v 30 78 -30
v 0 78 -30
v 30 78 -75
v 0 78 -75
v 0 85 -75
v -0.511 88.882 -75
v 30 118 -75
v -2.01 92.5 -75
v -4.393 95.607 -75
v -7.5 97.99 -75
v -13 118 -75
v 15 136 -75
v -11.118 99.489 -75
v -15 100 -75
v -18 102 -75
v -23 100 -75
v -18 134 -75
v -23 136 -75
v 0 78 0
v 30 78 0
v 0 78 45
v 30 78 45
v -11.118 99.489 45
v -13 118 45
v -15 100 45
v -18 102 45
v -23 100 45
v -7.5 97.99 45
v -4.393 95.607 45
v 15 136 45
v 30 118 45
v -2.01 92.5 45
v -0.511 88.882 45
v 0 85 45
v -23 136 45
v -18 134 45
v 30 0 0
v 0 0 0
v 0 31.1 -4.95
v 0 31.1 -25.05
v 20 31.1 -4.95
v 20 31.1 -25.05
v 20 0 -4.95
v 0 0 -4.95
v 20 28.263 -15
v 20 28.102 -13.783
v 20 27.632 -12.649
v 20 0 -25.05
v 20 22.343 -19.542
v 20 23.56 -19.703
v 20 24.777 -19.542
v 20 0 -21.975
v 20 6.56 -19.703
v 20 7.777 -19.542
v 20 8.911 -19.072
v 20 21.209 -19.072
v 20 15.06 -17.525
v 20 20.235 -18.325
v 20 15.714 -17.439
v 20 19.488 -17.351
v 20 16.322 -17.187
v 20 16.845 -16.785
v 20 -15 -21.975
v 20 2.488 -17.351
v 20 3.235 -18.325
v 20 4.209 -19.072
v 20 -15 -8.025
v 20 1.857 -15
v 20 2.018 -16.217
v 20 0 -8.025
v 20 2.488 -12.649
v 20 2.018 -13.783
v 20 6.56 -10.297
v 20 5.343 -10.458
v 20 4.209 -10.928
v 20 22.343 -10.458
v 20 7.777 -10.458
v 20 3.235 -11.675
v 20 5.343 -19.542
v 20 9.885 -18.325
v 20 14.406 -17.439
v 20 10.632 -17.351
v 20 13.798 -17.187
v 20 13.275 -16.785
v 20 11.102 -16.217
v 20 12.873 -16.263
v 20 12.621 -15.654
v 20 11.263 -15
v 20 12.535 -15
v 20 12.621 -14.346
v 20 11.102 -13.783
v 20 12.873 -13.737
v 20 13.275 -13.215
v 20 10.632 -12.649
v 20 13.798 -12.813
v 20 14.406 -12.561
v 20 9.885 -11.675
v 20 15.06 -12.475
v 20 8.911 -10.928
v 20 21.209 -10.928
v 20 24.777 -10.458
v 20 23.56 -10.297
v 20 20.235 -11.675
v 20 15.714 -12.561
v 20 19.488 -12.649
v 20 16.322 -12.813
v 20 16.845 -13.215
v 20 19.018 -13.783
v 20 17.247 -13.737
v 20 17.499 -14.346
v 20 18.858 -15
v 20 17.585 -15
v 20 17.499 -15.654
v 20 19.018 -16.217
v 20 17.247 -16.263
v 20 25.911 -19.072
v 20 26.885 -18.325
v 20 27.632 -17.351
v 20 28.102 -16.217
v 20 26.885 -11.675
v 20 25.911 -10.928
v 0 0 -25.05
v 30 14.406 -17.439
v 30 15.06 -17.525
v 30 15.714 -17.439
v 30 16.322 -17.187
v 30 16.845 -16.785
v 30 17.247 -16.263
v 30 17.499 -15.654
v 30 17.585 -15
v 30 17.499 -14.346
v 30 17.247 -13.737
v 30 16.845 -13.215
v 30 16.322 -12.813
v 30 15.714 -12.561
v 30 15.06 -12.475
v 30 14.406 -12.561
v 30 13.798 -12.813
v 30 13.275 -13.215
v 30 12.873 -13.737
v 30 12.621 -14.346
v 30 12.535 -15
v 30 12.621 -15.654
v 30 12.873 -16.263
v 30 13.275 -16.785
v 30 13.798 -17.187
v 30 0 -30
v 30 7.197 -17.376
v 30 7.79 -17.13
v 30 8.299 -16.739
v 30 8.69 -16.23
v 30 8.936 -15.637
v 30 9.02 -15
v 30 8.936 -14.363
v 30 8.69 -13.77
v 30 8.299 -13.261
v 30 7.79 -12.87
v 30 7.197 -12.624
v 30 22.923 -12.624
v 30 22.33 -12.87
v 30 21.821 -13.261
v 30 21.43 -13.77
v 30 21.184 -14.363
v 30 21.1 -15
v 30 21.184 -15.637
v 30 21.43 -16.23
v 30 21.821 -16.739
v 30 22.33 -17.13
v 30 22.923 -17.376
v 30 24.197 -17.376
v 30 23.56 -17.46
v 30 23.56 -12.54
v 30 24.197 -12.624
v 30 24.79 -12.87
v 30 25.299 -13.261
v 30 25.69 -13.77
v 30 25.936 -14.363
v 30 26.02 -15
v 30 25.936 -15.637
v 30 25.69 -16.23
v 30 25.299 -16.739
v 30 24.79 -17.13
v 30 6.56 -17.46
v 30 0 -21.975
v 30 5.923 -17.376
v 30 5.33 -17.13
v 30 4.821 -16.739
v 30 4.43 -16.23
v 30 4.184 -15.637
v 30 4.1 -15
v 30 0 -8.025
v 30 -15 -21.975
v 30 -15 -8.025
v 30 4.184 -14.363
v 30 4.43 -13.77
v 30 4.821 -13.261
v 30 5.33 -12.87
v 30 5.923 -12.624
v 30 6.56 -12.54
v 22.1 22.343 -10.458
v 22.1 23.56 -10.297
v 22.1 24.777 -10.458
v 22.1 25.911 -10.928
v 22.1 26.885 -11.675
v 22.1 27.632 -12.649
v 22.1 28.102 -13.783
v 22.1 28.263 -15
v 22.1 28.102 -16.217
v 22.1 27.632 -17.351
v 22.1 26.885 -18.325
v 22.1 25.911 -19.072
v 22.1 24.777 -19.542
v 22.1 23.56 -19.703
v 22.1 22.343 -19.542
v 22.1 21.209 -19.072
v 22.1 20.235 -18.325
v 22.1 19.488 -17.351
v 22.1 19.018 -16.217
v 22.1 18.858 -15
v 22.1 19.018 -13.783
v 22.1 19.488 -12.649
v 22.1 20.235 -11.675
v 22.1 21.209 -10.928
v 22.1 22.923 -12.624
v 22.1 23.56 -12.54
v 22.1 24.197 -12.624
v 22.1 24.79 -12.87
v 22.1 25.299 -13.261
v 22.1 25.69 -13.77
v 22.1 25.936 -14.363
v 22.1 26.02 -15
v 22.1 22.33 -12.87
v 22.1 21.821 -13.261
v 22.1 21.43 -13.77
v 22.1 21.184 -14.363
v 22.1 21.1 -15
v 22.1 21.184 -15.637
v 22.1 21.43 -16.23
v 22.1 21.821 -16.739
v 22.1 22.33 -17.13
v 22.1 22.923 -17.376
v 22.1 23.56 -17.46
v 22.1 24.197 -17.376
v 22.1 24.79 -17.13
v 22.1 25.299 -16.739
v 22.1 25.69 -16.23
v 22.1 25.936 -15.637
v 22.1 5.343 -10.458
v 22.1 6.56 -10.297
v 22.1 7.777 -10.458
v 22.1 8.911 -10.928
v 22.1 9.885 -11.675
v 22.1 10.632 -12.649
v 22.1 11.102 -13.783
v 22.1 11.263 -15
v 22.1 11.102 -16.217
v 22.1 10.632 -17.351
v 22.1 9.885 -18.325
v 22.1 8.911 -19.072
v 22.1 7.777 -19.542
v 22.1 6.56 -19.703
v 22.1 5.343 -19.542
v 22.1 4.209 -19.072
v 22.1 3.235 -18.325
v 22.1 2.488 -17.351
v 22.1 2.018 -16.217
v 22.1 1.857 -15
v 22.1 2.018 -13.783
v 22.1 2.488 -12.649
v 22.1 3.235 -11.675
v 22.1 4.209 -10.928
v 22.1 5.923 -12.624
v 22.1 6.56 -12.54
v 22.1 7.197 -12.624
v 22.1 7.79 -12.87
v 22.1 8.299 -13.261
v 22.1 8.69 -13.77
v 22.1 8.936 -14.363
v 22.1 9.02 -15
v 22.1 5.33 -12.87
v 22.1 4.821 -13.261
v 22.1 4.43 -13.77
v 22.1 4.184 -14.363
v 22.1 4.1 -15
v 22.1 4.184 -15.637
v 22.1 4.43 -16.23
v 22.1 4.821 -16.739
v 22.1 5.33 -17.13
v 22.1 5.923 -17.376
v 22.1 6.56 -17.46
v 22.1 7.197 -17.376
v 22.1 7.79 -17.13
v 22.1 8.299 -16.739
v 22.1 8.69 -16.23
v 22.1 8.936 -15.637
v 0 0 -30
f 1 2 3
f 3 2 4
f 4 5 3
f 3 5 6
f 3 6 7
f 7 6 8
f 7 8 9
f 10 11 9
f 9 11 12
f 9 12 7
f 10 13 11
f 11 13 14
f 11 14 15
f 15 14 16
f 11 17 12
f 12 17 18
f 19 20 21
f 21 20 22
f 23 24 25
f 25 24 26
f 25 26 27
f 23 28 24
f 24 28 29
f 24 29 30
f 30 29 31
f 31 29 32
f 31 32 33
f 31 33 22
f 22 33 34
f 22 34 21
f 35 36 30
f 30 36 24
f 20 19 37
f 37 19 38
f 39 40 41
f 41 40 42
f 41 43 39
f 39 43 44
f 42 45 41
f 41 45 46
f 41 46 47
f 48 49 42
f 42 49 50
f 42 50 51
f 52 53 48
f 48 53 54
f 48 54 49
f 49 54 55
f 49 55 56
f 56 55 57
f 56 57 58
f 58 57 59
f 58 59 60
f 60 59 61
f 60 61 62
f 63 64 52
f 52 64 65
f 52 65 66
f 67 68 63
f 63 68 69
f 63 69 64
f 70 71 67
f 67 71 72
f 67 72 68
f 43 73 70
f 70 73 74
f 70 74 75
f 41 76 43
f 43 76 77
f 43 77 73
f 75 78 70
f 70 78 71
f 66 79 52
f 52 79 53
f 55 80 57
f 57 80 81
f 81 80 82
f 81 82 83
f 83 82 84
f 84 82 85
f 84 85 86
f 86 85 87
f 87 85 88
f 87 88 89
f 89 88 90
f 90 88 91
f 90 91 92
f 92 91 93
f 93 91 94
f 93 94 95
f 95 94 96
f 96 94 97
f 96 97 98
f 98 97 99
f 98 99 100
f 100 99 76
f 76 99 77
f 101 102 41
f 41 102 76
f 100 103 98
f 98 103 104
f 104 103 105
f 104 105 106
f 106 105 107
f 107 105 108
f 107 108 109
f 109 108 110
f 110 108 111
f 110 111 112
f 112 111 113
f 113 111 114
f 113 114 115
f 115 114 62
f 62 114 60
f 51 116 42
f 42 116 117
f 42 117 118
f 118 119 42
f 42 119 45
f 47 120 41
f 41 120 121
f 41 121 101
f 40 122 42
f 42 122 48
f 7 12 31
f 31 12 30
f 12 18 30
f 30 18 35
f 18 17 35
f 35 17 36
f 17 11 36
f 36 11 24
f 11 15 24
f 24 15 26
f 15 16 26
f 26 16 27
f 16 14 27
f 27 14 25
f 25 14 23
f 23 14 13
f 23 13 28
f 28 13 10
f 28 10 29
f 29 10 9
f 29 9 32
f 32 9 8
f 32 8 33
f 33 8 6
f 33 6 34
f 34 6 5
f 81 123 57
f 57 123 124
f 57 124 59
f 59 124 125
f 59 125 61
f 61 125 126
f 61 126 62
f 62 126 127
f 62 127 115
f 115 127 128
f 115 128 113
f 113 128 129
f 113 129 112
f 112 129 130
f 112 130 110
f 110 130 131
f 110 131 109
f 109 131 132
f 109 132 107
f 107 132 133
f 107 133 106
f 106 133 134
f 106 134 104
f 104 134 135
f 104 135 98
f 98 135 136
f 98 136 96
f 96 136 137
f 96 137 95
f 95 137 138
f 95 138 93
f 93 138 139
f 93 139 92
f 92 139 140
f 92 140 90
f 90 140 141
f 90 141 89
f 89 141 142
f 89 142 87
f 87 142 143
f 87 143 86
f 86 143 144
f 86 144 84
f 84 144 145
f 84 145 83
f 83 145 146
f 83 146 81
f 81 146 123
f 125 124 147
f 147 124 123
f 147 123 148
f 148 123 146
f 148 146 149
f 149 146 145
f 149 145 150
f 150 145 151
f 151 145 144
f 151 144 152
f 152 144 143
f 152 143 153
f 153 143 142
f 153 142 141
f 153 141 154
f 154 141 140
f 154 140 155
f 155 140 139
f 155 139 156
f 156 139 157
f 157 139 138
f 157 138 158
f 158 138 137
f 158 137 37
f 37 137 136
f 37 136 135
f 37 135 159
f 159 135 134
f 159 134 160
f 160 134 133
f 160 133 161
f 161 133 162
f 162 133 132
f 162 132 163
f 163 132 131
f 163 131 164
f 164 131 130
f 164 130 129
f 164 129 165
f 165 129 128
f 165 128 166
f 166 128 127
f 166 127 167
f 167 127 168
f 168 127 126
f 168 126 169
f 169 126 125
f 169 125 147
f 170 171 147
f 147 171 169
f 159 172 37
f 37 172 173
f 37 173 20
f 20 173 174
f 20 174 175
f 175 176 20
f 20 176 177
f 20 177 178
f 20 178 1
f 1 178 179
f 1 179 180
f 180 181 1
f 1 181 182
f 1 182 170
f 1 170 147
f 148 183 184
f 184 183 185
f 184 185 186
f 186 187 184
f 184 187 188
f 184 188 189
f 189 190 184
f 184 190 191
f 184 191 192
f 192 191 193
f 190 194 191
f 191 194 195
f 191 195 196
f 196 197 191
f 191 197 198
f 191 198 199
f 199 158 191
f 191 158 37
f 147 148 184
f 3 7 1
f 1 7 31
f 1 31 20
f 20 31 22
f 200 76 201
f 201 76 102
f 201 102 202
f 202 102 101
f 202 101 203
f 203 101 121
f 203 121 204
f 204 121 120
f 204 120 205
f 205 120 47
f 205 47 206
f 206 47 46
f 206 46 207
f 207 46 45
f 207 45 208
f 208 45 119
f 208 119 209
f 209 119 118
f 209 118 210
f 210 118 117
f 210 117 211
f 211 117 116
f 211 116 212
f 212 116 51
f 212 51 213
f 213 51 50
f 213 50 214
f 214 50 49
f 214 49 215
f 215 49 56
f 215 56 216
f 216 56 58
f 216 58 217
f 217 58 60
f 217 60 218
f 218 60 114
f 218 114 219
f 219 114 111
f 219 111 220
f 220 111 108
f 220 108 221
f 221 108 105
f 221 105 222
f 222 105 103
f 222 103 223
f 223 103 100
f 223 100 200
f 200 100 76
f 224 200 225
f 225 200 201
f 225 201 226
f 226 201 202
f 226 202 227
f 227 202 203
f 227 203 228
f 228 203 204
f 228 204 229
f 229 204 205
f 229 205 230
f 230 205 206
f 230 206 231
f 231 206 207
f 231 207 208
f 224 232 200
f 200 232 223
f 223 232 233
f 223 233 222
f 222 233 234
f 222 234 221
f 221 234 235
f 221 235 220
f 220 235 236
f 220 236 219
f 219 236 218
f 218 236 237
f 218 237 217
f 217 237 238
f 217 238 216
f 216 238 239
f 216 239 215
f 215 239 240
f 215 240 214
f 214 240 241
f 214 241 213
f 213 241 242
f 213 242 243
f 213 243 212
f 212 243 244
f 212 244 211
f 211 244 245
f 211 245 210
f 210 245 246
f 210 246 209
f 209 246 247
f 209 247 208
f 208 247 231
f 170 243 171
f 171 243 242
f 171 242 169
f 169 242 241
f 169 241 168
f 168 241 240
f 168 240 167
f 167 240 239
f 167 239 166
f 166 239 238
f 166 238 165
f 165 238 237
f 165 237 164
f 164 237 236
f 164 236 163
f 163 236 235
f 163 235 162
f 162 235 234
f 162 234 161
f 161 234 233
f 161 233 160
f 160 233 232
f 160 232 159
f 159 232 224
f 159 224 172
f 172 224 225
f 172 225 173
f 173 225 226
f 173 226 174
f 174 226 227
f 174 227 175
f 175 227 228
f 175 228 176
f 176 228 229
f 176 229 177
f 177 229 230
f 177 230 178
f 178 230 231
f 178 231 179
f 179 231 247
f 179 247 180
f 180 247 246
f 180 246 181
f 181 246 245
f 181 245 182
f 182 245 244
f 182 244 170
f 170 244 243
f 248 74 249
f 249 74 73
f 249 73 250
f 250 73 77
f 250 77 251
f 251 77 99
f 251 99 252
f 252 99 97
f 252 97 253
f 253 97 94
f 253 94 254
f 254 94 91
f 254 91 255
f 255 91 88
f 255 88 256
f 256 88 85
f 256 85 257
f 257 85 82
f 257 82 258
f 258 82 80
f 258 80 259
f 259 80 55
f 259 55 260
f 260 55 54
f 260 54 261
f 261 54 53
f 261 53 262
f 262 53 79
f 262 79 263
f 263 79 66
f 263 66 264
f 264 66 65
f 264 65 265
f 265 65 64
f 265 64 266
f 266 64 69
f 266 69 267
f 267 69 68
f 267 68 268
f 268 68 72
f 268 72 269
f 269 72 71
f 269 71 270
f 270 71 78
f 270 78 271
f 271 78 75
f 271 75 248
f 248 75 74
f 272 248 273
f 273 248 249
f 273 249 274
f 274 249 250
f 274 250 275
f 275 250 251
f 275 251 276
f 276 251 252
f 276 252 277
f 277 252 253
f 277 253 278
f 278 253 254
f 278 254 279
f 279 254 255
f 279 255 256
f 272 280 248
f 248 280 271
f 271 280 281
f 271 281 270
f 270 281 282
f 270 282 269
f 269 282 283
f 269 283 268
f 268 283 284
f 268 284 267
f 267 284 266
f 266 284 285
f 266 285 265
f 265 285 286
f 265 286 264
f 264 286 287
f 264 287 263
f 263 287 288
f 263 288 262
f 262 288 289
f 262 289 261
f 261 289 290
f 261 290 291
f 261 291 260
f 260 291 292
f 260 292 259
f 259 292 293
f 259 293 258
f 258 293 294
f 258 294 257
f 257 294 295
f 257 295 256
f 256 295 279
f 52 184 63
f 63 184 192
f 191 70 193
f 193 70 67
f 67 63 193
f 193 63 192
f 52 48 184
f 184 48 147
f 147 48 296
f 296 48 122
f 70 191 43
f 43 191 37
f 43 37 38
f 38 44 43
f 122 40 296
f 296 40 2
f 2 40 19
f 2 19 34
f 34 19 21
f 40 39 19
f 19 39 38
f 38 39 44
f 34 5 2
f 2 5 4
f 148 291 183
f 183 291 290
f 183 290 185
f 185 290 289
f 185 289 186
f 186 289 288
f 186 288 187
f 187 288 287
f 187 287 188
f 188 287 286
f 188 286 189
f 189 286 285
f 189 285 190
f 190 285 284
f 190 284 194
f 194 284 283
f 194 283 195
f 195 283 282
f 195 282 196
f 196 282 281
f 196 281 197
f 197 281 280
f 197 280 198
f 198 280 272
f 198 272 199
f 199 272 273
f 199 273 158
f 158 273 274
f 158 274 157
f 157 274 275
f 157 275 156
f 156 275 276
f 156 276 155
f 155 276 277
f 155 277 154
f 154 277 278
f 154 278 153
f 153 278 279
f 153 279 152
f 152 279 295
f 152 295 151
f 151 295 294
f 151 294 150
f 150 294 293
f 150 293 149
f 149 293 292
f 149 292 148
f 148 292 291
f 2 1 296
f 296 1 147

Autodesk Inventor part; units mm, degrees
ref_plane "YZ Plane" through (0, 0, 0) normal (1, 0, 0) x (0, 1, 0)
ref_plane "XZ Plane" through (0, 0, 0) normal (0, 1, 0) x (-1, 0, 0)
sketch "Sketch1" plane through (0, 0, 0) normal (0, 0, 1) x (1, 0, 0)
  line L0 (0, 0) -> (25, 0)
  line L1 (25, 0) -> (25, 40)
  line L2 (25, 40) -> (0, 40)
  line L3 (0, 40) -> (0, 0)
  dimension "d1" = 25
  dimension "d2" = 40
  dimension "d3" = 25
extrude "Extrusion1" add sketch "Sketch1" against normal blind 30
sketch "Sketch2" plane through (25, 0, 0) normal (1, 0, 0) x (0, 0, -1)
  line L0 (0, 0) -> (30, 0) projected
  circle A0 centre (15, 6.56) radius 2.46
extrude "Extrusion2" cut sketch "Sketch2" against normal blind 30
sketch "Sketch3" plane through (0, 0, 0) normal (-1, 0, 0) x (0, 0, 1)
  line L0 (0, 0) -> (-30, 0) projected
  line L1 (-25.05, 0) -> (-4.95, 0)
  line L2 (-4.95, 0) -> (-4.95, 33.12)
  line L3 (-4.95, 33.12) -> (-25.05, 33.12)
  line L4 (-25.05, 33.12) -> (-25.05, 0)
  dimension "d11" = 20.1
extrude "Extrusion3" cut sketch "Sketch3" against normal blind 20
sketch "Sketch4" plane through (0, 0, 0) normal (0, -1, 0) x (1, 0, 0)
  line L0 (20, -4.95) -> (20, -25.05) projected
  line L1 (20, -15) -> (25, -15)
  line L2 (25, 0) -> (25, -30) projected
  line L3 (20, -8.025) -> (25, -8.025)
  line L4 (25, -8.025) -> (25, -21.975)
  line L5 (25, -21.975) -> (20, -21.975)
  line L6 (20, -21.975) -> (20, -8.025)
  line L7 (20, -8.025) -> (25, -21.975) construction
  line L8 (25, -8.025) -> (20, -21.975) construction
  line L9 (25, -12.54) -> (25, -17.46) projected
  point P0 (0, 0)
  point P1 (22.5, -15)
  dimension "d14" = 13.95
extrude "Extrusion4" add sketch "Sketch4" along normal blind 15
sketch "Sketch5" plane through (20, 0, 0) normal (-1, 0, 0) x (0, 0, 1)
  circle A0 centre (-15, 6.56) radius 2.46 projected
  circle A1 centre (-15, 6.56) radius 4.7025
  circle A2 centre (-15, 6.56) radius 2.46 projected
  circle A3 centre (-15, 6.56) radius 2.46
  point P0 (0, 0)
  dimension "d17" = 9.405
extrude "Extrusion5" cut sketch "Sketch5" against normal blind 2.1
sketch "Sketch6" plane through (25, 0, 0) normal (1, 0, 0) x (0, 0, -1)
  circle A0 centre (15, 6.56) radius 4.7025 projected
  line L0 (15, 6.56) -> (15, 23.56)
  circle A1 centre (15, 23.56) radius 2.46
  point P0 (0, 0)
  dimension "d20" = 17
  dimension "d21" = 4.92
extrude "Extrusion6" cut sketch "Sketch6" against normal blind 10 contours A1
sketch "Sketch7" plane through (20, 0, 0) normal (-1, 0, 0) x (0, 0, 1)
  circle A0 centre (-15, 23.56) radius 2.46 projected
  circle A1 centre (-15, 23.56) radius 4.7025
  point P0 (0, 0)
  dimension "d24" = 9.405
extrude "Extrusion7" cut sketch "Sketch7" against normal blind 2.1
sketch "Sketch9" plane through (25, 0, 0) normal (1, 0, 0) x (0, 0, -1)
  circle A0 centre (15, 6.56) radius 2.46 projected
  circle A1 centre (15, 6.56) radius 2.46
  circle A2 centre (15, 23.56) radius 2.46 projected
  circle A3 centre (15, 23.56) radius 2.46
  line L0 (30, 40) -> (30, 0) projected
  line L1 (30, 0) -> (30, 40)
  line L2 (30, 40) -> (0, 40)
  line L3 (0, 40) -> (0, 0)
  line L4 (0, 0) -> (8.025, 0) projected
  line L5 (21.975, 0) -> (21.975, -15)
  line L6 (21.975, -15) -> (8.025, -15)
  line L7 (8.025, -15) -> (8.025, 0)
  line L8 (0, 0) -> (8.025, 0)
  line L9 (21.975, 0) -> (30, 0)
extrude "Extrusion8" add sketch "Sketch9" along normal blind 5
sketch "Sketch10" plane through (0, 40, 0) normal (0, 1, 0) x (1, 0, 0)
  line L0 (0, 30) -> (30, 30) projected
  line L1 (30, 0) -> (0, 0) projected
  line L2 (0, 30) -> (30, 30)
  line L3 (30, 30) -> (30, 0)
  line L4 (30, 0) -> (0, 0)
  line L5 (0, 0) -> (0, 30)
extrude "Extrusion9" add sketch "Sketch10" along normal blind 30
sketch "Sketch12" plane through (30, 0, 0) normal (1, 0, 0) x (0, 0, -1)
  circle A0 centre (15, 6.56) radius 2.46 projected
  line L0 (15, 6.56) -> (15, 15.06)
  circle A1 centre (15, 15.06) radius 2.525
  point P0 (0, 0)
  dimension "d31" = 8.5
  dimension "d33" = 5.05
extrude "Extrusion10" cut sketch "Sketch12" against normal blind 30 contours A1
sketch "Sketch14" plane through (0, 0, 0) normal (0, 0, 1) x (1, 0, 0)
  line L0 (30, 70) -> (0, 70) projected
  line L1 (0, 70) -> (0, 85)
  line L2 (-15, 100) -> (-23, 100)
  line L3 (30, 0) -> (30, 70) projected
  line L4 (30, 118) -> (30, 70)
  arc A0 (0, 85) -> (-15, 100) centre (-15, 85) ccw
  line L5 (30, 105) -> (30, 100)
  line L6 (-18, 134) -> (-23, 136)
  line L7 (-18, 102) -> (-23, 100)
  line L8 (-18, 102) -> (-13, 118)
  line L9 (-13, 118) -> (-18, 134)
  line L10 (15, 136) -> (30, 118)
  line L11 (-23, 136) -> (15, 136)
  point P0 (0, 0)
  point P1 (0, 100)
  dimension "d47" = 30
  dimension "d54" = 15
extrude "Extrusion12" add sketch "Sketch14" against normal blind 30
sketch "Sketch15" plane through (0, 0, -25.05) normal (-1, 0, 0) x (0, 0, 1)
  line L0 (0, 33.12) -> (20.1, 33.12) projected
  line L1 (20.1, 33.12) -> (20.1, 0) projected
  line L2 (0, 33.12) -> (20.1, 33.12)
  line L3 (20.1, 33.12) -> (20.1, 31.1)
  line L4 (20.1, 31.1) -> (0, 31.1)
  line L5 (0, 31.1) -> (0, 33.12)
  point P0 (25.05, 0)
  dimension "d57" = 2.02
extrude "Extrusion13" add sketch "Sketch15" against normal blind 20
sketch "Sketch22" plane through (0, 0, 0) normal (0, 0, 1) x (1, 0, 0)
  line L0 (-15, 100) -> (-23, 100) projected
  line L1 (-15, 100) -> (-23, 100)
  line L2 (-23, 100) -> (-18, 102) projected
  line L3 (-23, 100) -> (-18, 102)
  line L4 (-18, 102) -> (-13, 118) projected
  line L5 (-18, 102) -> (-13, 118)
  line L6 (-13, 118) -> (-18, 134) projected
  line L7 (-13, 118) -> (-18, 134)
  line L8 (-18, 134) -> (-23, 136) projected
  line L9 (-18, 134) -> (-23, 136)
  line L10 (-23, 136) -> (15, 136) projected
  line L11 (-23, 136) -> (15, 136)
  line L12 (15, 136) -> (30, 118) projected
  line L13 (15, 136) -> (30, 118)
  line L14 (30, 118) -> (30, 78)
  line L15 (30, 0) -> (30, 118) projected
  line L16 (30, 78) -> (0, 78)
  arc A0 (0, 85) -> (-15, 100) centre (-15, 85) ccw projected
  line L17 (0, 78) -> (0, 85)
  arc A1 (0, 85) -> (-15, 100) centre (-15, 85) ccw
  point P0 (0, 0)
  dimension "d82" = 40
extrude "Extrusion14" add sketch "Sketch22" along normal blind 45
ref_plane "Work Plane1" through (0, 0, -15) normal (0, 0, 1) x (1, 0, 0)
mirror "Mirror1" about plane through (0, 0, -15) normal (0, 0, 1) of "Extrusion14"
properties part number "rec_a_32mm_x_120mm"
